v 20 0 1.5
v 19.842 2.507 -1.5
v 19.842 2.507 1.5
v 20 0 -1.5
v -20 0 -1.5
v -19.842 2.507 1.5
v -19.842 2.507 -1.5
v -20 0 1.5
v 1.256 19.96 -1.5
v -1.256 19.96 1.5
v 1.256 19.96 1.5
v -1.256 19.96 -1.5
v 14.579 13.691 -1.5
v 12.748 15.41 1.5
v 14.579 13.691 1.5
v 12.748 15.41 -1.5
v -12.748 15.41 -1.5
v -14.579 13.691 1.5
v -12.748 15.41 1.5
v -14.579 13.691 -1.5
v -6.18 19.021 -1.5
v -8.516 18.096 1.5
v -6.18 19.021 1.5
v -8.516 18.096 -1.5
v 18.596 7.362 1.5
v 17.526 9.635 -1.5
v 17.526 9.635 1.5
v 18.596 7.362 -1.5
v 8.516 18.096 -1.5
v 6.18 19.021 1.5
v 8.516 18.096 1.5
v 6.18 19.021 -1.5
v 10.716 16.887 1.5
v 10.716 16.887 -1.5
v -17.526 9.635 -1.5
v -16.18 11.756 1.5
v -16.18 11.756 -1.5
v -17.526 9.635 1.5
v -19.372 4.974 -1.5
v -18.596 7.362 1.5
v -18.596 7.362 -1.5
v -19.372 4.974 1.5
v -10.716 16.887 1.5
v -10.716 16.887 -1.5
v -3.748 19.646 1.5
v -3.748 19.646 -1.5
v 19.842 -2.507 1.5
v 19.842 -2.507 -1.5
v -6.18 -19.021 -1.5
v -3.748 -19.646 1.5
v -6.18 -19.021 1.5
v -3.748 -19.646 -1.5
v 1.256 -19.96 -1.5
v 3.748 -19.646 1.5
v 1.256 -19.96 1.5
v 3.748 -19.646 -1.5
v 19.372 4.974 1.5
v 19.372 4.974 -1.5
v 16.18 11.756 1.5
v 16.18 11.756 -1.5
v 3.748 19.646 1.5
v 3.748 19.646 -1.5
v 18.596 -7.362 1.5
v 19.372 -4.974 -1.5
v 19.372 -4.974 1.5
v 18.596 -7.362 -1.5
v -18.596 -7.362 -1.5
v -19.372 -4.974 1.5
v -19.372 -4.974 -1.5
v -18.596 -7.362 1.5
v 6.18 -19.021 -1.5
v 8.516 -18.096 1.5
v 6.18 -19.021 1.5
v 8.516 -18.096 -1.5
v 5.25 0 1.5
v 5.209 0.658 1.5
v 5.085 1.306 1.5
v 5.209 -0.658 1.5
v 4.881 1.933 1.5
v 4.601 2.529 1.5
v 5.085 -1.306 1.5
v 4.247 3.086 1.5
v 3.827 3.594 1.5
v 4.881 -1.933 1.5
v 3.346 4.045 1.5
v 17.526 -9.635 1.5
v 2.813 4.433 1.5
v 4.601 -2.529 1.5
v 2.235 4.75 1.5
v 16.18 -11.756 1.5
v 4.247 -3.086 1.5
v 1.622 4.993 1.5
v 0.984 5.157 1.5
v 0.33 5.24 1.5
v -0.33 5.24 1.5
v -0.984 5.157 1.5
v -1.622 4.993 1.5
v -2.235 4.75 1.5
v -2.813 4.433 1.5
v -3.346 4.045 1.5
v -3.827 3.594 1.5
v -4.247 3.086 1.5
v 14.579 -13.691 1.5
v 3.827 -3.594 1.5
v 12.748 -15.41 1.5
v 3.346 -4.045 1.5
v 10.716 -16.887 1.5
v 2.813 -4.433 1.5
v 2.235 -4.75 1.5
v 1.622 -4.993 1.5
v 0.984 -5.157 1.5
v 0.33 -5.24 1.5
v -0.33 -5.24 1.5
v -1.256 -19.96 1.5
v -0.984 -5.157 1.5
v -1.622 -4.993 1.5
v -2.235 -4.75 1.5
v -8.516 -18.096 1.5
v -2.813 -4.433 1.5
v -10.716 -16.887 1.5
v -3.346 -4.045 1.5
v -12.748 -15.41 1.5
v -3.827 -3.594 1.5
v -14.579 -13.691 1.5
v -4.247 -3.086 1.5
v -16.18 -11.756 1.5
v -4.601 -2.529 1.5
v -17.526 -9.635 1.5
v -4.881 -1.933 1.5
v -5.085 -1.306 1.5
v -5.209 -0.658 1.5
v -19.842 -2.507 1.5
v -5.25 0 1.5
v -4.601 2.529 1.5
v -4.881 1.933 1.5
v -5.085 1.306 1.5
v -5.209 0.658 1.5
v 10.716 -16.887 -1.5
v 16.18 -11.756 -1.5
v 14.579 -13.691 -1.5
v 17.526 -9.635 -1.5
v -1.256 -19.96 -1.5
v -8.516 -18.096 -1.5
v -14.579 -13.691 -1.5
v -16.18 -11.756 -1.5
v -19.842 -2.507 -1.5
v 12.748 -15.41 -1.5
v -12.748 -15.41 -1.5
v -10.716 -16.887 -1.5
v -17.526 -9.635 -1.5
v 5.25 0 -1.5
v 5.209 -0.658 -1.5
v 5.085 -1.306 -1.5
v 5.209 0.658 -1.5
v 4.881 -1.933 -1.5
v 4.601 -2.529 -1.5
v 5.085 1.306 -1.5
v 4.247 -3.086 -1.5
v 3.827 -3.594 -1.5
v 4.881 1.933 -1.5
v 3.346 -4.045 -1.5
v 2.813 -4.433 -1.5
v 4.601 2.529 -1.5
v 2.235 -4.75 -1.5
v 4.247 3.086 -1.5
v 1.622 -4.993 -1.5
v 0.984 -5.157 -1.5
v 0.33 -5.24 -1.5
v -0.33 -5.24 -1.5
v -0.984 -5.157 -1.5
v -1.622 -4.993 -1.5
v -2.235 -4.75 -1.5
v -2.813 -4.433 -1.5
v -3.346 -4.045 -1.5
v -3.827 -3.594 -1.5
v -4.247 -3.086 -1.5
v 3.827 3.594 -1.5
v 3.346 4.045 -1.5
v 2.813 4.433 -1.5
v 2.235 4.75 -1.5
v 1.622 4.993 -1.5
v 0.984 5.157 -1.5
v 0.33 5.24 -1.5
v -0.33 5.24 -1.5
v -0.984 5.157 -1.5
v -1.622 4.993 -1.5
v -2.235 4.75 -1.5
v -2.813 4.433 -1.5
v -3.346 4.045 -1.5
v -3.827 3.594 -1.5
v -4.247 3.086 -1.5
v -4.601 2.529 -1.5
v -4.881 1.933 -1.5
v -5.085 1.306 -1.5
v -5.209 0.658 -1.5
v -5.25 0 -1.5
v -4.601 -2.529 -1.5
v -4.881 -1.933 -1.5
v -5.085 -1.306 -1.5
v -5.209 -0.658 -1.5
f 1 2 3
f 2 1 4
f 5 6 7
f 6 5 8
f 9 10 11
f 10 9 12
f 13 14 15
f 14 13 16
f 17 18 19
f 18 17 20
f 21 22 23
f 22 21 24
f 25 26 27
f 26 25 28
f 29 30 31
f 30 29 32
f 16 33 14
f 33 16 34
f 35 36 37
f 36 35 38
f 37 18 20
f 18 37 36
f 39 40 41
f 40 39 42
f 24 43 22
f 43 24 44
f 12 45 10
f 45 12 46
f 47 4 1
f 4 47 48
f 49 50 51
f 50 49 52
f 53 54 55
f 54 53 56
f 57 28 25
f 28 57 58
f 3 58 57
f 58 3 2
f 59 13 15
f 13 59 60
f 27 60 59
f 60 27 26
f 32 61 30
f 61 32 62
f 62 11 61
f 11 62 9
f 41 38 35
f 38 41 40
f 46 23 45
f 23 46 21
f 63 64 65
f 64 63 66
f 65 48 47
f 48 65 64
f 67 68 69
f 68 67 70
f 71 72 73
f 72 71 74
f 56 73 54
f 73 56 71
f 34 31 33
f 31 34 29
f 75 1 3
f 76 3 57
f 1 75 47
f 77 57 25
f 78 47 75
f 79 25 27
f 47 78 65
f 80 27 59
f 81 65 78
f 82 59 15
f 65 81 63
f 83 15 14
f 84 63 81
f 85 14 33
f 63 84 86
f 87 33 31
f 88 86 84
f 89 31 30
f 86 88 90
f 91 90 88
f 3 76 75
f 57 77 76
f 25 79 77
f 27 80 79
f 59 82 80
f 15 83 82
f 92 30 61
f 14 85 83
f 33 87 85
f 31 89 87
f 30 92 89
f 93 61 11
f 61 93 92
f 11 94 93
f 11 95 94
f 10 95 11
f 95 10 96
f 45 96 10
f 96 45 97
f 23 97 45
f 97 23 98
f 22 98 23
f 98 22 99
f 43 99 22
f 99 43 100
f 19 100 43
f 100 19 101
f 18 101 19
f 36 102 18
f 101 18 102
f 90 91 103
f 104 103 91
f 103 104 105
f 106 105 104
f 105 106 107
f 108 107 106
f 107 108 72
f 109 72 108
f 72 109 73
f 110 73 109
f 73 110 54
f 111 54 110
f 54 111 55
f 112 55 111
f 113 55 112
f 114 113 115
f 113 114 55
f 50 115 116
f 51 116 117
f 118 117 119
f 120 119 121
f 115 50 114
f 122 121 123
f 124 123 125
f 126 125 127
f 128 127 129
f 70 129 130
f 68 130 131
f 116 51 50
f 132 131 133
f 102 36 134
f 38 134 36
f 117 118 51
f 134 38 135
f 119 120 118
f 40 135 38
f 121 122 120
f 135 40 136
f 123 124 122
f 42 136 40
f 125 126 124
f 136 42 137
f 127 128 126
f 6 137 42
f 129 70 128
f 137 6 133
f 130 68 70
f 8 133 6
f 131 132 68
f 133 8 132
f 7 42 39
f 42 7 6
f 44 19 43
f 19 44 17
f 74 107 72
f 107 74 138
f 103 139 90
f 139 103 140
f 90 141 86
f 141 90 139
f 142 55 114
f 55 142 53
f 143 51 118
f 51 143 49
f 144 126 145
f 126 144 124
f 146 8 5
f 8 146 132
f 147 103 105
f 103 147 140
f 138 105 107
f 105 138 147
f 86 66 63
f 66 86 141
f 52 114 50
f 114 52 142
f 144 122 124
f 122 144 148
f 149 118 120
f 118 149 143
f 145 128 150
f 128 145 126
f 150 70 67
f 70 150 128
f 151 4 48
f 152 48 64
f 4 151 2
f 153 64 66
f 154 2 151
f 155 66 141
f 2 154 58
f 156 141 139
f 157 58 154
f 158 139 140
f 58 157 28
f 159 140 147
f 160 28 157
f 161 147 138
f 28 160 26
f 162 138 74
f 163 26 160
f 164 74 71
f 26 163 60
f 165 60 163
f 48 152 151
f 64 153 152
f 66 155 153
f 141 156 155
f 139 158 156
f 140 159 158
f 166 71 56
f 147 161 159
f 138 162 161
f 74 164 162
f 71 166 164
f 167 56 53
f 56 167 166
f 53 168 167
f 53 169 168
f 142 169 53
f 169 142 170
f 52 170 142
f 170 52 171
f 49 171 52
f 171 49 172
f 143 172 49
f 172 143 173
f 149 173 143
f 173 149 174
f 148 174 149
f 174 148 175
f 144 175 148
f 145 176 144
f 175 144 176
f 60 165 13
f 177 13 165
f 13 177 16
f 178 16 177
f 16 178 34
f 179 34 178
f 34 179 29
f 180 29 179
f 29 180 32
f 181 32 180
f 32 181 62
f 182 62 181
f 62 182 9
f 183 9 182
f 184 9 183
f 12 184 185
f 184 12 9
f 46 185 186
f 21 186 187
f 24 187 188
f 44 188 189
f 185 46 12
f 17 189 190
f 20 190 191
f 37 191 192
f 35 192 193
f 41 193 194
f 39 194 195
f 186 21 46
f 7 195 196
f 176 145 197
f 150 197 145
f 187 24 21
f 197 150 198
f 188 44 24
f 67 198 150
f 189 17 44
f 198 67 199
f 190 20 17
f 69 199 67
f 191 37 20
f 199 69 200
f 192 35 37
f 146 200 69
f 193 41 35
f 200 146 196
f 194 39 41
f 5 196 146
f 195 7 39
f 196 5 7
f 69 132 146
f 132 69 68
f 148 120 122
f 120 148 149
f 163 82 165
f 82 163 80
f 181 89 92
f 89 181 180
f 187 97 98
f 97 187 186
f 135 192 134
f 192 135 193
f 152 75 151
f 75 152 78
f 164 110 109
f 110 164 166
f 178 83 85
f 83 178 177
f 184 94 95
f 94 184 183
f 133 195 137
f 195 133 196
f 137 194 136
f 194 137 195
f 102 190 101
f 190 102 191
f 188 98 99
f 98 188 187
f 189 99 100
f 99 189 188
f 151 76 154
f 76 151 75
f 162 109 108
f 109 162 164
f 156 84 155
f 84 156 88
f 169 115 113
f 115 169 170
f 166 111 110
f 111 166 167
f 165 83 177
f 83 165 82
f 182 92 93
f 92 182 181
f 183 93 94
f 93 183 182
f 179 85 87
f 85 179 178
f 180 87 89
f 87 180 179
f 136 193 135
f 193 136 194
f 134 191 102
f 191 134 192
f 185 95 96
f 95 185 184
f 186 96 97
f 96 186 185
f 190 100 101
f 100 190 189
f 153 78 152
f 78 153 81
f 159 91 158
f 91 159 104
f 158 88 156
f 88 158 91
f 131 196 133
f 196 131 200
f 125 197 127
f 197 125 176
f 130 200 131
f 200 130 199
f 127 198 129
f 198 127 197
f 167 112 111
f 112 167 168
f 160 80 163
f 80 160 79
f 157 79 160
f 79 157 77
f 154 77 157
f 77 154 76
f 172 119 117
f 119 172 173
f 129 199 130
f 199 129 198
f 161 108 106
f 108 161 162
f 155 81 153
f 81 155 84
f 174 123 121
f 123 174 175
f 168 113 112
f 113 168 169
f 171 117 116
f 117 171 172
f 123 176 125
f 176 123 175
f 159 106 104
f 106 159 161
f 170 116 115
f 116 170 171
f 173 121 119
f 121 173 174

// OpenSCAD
$fn = 50;


difference() {
	union() {
		translate(v = [0, 0, -1.5000000000]) {
			cylinder(h = 3, r = 20.0000000000);
		}
	}
	union() {
		translate(v = [0, 0, -100.0000000000]) {
			cylinder(h = 200, r = 5.2500000000);
		}
	}
}
